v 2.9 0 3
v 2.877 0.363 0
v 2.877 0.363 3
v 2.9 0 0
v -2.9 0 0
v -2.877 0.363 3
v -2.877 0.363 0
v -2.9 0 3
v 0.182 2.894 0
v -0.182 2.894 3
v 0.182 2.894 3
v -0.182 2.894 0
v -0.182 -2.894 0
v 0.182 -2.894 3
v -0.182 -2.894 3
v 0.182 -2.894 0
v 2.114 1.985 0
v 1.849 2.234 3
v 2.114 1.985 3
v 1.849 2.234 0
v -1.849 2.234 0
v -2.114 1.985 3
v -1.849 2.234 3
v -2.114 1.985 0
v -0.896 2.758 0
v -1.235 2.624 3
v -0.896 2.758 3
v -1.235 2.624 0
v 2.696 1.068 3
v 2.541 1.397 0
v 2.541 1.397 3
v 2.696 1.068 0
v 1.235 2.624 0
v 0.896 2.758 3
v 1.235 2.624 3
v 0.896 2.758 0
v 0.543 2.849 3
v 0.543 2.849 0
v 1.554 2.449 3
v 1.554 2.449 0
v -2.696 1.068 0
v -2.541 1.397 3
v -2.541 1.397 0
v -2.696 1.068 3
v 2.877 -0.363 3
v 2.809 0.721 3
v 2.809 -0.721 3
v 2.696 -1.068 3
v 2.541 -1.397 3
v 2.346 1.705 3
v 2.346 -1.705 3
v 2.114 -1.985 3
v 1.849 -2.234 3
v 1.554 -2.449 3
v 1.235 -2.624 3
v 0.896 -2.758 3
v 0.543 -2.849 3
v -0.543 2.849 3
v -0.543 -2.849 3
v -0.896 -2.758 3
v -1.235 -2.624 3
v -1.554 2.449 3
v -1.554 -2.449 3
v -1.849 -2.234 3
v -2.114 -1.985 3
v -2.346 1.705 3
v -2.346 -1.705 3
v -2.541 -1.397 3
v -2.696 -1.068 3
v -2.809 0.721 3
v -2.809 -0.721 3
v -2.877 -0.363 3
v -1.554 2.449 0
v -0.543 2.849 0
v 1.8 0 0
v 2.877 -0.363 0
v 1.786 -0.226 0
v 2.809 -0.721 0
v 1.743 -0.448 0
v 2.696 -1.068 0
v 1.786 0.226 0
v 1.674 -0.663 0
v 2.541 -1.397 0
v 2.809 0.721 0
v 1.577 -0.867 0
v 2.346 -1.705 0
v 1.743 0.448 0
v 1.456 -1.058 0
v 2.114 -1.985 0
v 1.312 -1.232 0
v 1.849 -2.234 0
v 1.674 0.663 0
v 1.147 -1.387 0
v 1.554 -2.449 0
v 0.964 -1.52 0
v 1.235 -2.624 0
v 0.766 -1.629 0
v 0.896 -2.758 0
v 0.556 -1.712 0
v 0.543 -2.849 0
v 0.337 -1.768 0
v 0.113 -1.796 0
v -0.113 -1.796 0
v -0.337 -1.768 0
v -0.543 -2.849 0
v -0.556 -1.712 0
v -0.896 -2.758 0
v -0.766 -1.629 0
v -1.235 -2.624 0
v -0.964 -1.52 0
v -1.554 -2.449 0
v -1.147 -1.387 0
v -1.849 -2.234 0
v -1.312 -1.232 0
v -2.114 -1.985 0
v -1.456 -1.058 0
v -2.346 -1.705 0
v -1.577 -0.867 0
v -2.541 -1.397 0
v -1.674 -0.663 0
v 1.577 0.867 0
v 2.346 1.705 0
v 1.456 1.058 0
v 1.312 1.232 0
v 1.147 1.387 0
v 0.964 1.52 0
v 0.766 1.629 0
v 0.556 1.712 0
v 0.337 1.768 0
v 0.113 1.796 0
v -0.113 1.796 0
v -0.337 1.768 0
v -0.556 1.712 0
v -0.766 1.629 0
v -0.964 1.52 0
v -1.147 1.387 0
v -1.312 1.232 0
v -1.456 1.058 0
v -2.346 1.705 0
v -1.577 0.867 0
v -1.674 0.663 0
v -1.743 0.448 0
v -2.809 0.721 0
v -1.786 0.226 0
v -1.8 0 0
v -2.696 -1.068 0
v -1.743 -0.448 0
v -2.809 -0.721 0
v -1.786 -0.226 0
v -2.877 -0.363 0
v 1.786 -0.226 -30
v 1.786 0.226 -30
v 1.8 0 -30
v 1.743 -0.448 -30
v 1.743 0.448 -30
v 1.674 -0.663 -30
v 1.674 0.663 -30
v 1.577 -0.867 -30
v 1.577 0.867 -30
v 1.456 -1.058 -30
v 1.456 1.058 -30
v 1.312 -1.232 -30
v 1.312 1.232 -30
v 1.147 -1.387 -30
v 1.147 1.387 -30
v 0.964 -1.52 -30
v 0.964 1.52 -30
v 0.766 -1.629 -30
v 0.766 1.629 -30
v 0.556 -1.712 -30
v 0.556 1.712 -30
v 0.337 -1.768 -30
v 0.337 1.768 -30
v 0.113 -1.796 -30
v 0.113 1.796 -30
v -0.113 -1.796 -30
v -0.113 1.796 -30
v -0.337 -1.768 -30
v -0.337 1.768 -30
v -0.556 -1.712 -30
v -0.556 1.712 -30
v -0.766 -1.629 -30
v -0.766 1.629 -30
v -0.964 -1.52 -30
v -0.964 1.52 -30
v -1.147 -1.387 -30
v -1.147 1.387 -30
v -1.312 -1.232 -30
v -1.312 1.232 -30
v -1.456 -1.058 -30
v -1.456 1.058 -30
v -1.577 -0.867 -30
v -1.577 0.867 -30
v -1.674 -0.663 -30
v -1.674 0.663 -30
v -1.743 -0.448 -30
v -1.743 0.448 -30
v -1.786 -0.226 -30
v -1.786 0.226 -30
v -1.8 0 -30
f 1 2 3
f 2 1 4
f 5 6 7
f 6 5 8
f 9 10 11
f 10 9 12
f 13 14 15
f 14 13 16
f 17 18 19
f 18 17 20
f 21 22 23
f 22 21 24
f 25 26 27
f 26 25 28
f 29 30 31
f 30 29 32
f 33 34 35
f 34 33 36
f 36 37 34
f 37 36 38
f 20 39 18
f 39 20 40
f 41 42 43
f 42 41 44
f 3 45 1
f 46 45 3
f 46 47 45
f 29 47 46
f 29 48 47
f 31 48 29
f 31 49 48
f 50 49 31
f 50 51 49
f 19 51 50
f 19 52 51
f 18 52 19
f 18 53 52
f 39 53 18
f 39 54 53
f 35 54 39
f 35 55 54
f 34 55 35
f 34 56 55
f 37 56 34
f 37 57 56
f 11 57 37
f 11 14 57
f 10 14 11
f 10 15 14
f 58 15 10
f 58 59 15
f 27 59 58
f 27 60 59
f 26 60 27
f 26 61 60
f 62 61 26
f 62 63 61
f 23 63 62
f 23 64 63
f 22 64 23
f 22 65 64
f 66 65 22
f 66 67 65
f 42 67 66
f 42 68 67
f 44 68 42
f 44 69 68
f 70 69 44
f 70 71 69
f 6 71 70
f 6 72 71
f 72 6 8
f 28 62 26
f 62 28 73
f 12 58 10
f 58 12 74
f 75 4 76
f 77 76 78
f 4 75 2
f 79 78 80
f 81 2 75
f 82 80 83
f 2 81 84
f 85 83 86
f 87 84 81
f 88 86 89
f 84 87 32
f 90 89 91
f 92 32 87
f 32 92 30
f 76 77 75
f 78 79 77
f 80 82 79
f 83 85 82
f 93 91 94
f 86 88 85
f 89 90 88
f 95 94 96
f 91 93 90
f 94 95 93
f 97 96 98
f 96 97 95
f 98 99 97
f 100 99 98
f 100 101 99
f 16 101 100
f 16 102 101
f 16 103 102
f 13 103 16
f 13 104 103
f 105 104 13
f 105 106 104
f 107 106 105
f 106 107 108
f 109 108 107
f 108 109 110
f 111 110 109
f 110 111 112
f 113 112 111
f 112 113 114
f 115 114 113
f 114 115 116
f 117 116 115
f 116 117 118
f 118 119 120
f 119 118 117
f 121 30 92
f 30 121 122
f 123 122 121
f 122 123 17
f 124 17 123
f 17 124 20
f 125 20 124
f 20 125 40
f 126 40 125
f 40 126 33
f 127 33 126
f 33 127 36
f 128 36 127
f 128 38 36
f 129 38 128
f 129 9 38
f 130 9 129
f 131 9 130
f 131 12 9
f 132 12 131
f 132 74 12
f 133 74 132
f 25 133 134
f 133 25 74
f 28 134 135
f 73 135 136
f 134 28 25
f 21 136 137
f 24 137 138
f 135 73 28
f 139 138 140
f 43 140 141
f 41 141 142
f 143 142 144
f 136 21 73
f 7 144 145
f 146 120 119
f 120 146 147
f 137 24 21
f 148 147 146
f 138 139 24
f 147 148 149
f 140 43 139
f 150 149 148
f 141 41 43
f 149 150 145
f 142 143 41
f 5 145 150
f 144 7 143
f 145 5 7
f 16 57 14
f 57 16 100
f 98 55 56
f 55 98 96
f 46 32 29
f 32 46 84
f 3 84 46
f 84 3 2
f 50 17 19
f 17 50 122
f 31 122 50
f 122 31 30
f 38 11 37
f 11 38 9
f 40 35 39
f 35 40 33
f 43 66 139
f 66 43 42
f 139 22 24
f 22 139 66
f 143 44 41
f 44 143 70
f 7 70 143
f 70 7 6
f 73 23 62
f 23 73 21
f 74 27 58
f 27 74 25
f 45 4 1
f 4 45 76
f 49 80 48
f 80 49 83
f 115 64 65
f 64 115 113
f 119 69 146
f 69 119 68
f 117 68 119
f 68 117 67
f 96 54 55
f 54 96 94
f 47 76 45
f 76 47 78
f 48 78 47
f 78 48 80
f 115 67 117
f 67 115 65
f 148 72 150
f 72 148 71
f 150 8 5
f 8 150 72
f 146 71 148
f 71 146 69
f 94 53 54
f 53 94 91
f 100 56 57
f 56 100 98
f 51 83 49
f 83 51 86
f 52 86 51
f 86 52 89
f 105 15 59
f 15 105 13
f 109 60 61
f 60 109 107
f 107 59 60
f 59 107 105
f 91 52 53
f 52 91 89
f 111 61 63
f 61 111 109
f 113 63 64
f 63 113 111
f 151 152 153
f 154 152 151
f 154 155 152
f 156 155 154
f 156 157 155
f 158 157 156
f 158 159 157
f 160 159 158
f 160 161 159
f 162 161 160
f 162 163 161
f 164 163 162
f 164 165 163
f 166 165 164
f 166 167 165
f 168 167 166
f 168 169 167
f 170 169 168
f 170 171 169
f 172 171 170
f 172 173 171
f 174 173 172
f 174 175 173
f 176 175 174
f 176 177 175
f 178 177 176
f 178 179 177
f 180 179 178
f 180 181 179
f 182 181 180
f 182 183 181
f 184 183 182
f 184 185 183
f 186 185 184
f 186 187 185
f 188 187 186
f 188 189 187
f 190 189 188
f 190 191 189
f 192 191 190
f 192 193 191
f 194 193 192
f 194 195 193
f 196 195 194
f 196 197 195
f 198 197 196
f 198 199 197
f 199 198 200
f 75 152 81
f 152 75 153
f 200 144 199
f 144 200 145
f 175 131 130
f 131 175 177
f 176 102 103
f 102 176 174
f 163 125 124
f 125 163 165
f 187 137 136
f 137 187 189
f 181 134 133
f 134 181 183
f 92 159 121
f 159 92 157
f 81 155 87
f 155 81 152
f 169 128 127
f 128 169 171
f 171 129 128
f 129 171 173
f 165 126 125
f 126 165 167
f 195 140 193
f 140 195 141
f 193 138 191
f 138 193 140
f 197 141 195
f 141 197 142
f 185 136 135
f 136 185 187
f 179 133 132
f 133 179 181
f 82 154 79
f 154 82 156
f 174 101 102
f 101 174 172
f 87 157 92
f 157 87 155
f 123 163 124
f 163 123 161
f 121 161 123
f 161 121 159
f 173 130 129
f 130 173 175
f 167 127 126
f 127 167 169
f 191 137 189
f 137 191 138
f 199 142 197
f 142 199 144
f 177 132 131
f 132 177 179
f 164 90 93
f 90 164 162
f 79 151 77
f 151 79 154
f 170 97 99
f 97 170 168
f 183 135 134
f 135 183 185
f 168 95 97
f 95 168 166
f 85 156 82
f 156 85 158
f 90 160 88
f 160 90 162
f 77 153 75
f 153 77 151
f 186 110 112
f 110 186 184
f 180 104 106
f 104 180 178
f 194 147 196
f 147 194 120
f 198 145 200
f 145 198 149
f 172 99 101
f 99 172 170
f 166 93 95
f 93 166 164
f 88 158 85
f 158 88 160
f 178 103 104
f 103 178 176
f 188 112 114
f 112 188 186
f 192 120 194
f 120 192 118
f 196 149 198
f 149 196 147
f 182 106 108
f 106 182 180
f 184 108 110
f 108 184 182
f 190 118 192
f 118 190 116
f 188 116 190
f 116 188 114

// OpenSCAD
$fn = 50;


difference() {
	union() {
		translate(v = [0, 0, 0]) {
			rotate(a = [0, 0, 0]) {
				difference() {
					union() {
						cylinder(h = 3, r = 2.9000000000);
						translate(v = [0, 0, -30.0000000000]) {
							cylinder(h = 30, r = 1.5000000000);
						}
						translate(v = [0, 0, -30.0000000000]) {
							cylinder(h = 30, r = 1.8000000000);
						}
						translate(v = [0, 0, -30.0000000000]) {
							cylinder(h = 30, r = 1.5000000000);
						}
					}
					union();
				}
			}
		}
	}
	union();
}
